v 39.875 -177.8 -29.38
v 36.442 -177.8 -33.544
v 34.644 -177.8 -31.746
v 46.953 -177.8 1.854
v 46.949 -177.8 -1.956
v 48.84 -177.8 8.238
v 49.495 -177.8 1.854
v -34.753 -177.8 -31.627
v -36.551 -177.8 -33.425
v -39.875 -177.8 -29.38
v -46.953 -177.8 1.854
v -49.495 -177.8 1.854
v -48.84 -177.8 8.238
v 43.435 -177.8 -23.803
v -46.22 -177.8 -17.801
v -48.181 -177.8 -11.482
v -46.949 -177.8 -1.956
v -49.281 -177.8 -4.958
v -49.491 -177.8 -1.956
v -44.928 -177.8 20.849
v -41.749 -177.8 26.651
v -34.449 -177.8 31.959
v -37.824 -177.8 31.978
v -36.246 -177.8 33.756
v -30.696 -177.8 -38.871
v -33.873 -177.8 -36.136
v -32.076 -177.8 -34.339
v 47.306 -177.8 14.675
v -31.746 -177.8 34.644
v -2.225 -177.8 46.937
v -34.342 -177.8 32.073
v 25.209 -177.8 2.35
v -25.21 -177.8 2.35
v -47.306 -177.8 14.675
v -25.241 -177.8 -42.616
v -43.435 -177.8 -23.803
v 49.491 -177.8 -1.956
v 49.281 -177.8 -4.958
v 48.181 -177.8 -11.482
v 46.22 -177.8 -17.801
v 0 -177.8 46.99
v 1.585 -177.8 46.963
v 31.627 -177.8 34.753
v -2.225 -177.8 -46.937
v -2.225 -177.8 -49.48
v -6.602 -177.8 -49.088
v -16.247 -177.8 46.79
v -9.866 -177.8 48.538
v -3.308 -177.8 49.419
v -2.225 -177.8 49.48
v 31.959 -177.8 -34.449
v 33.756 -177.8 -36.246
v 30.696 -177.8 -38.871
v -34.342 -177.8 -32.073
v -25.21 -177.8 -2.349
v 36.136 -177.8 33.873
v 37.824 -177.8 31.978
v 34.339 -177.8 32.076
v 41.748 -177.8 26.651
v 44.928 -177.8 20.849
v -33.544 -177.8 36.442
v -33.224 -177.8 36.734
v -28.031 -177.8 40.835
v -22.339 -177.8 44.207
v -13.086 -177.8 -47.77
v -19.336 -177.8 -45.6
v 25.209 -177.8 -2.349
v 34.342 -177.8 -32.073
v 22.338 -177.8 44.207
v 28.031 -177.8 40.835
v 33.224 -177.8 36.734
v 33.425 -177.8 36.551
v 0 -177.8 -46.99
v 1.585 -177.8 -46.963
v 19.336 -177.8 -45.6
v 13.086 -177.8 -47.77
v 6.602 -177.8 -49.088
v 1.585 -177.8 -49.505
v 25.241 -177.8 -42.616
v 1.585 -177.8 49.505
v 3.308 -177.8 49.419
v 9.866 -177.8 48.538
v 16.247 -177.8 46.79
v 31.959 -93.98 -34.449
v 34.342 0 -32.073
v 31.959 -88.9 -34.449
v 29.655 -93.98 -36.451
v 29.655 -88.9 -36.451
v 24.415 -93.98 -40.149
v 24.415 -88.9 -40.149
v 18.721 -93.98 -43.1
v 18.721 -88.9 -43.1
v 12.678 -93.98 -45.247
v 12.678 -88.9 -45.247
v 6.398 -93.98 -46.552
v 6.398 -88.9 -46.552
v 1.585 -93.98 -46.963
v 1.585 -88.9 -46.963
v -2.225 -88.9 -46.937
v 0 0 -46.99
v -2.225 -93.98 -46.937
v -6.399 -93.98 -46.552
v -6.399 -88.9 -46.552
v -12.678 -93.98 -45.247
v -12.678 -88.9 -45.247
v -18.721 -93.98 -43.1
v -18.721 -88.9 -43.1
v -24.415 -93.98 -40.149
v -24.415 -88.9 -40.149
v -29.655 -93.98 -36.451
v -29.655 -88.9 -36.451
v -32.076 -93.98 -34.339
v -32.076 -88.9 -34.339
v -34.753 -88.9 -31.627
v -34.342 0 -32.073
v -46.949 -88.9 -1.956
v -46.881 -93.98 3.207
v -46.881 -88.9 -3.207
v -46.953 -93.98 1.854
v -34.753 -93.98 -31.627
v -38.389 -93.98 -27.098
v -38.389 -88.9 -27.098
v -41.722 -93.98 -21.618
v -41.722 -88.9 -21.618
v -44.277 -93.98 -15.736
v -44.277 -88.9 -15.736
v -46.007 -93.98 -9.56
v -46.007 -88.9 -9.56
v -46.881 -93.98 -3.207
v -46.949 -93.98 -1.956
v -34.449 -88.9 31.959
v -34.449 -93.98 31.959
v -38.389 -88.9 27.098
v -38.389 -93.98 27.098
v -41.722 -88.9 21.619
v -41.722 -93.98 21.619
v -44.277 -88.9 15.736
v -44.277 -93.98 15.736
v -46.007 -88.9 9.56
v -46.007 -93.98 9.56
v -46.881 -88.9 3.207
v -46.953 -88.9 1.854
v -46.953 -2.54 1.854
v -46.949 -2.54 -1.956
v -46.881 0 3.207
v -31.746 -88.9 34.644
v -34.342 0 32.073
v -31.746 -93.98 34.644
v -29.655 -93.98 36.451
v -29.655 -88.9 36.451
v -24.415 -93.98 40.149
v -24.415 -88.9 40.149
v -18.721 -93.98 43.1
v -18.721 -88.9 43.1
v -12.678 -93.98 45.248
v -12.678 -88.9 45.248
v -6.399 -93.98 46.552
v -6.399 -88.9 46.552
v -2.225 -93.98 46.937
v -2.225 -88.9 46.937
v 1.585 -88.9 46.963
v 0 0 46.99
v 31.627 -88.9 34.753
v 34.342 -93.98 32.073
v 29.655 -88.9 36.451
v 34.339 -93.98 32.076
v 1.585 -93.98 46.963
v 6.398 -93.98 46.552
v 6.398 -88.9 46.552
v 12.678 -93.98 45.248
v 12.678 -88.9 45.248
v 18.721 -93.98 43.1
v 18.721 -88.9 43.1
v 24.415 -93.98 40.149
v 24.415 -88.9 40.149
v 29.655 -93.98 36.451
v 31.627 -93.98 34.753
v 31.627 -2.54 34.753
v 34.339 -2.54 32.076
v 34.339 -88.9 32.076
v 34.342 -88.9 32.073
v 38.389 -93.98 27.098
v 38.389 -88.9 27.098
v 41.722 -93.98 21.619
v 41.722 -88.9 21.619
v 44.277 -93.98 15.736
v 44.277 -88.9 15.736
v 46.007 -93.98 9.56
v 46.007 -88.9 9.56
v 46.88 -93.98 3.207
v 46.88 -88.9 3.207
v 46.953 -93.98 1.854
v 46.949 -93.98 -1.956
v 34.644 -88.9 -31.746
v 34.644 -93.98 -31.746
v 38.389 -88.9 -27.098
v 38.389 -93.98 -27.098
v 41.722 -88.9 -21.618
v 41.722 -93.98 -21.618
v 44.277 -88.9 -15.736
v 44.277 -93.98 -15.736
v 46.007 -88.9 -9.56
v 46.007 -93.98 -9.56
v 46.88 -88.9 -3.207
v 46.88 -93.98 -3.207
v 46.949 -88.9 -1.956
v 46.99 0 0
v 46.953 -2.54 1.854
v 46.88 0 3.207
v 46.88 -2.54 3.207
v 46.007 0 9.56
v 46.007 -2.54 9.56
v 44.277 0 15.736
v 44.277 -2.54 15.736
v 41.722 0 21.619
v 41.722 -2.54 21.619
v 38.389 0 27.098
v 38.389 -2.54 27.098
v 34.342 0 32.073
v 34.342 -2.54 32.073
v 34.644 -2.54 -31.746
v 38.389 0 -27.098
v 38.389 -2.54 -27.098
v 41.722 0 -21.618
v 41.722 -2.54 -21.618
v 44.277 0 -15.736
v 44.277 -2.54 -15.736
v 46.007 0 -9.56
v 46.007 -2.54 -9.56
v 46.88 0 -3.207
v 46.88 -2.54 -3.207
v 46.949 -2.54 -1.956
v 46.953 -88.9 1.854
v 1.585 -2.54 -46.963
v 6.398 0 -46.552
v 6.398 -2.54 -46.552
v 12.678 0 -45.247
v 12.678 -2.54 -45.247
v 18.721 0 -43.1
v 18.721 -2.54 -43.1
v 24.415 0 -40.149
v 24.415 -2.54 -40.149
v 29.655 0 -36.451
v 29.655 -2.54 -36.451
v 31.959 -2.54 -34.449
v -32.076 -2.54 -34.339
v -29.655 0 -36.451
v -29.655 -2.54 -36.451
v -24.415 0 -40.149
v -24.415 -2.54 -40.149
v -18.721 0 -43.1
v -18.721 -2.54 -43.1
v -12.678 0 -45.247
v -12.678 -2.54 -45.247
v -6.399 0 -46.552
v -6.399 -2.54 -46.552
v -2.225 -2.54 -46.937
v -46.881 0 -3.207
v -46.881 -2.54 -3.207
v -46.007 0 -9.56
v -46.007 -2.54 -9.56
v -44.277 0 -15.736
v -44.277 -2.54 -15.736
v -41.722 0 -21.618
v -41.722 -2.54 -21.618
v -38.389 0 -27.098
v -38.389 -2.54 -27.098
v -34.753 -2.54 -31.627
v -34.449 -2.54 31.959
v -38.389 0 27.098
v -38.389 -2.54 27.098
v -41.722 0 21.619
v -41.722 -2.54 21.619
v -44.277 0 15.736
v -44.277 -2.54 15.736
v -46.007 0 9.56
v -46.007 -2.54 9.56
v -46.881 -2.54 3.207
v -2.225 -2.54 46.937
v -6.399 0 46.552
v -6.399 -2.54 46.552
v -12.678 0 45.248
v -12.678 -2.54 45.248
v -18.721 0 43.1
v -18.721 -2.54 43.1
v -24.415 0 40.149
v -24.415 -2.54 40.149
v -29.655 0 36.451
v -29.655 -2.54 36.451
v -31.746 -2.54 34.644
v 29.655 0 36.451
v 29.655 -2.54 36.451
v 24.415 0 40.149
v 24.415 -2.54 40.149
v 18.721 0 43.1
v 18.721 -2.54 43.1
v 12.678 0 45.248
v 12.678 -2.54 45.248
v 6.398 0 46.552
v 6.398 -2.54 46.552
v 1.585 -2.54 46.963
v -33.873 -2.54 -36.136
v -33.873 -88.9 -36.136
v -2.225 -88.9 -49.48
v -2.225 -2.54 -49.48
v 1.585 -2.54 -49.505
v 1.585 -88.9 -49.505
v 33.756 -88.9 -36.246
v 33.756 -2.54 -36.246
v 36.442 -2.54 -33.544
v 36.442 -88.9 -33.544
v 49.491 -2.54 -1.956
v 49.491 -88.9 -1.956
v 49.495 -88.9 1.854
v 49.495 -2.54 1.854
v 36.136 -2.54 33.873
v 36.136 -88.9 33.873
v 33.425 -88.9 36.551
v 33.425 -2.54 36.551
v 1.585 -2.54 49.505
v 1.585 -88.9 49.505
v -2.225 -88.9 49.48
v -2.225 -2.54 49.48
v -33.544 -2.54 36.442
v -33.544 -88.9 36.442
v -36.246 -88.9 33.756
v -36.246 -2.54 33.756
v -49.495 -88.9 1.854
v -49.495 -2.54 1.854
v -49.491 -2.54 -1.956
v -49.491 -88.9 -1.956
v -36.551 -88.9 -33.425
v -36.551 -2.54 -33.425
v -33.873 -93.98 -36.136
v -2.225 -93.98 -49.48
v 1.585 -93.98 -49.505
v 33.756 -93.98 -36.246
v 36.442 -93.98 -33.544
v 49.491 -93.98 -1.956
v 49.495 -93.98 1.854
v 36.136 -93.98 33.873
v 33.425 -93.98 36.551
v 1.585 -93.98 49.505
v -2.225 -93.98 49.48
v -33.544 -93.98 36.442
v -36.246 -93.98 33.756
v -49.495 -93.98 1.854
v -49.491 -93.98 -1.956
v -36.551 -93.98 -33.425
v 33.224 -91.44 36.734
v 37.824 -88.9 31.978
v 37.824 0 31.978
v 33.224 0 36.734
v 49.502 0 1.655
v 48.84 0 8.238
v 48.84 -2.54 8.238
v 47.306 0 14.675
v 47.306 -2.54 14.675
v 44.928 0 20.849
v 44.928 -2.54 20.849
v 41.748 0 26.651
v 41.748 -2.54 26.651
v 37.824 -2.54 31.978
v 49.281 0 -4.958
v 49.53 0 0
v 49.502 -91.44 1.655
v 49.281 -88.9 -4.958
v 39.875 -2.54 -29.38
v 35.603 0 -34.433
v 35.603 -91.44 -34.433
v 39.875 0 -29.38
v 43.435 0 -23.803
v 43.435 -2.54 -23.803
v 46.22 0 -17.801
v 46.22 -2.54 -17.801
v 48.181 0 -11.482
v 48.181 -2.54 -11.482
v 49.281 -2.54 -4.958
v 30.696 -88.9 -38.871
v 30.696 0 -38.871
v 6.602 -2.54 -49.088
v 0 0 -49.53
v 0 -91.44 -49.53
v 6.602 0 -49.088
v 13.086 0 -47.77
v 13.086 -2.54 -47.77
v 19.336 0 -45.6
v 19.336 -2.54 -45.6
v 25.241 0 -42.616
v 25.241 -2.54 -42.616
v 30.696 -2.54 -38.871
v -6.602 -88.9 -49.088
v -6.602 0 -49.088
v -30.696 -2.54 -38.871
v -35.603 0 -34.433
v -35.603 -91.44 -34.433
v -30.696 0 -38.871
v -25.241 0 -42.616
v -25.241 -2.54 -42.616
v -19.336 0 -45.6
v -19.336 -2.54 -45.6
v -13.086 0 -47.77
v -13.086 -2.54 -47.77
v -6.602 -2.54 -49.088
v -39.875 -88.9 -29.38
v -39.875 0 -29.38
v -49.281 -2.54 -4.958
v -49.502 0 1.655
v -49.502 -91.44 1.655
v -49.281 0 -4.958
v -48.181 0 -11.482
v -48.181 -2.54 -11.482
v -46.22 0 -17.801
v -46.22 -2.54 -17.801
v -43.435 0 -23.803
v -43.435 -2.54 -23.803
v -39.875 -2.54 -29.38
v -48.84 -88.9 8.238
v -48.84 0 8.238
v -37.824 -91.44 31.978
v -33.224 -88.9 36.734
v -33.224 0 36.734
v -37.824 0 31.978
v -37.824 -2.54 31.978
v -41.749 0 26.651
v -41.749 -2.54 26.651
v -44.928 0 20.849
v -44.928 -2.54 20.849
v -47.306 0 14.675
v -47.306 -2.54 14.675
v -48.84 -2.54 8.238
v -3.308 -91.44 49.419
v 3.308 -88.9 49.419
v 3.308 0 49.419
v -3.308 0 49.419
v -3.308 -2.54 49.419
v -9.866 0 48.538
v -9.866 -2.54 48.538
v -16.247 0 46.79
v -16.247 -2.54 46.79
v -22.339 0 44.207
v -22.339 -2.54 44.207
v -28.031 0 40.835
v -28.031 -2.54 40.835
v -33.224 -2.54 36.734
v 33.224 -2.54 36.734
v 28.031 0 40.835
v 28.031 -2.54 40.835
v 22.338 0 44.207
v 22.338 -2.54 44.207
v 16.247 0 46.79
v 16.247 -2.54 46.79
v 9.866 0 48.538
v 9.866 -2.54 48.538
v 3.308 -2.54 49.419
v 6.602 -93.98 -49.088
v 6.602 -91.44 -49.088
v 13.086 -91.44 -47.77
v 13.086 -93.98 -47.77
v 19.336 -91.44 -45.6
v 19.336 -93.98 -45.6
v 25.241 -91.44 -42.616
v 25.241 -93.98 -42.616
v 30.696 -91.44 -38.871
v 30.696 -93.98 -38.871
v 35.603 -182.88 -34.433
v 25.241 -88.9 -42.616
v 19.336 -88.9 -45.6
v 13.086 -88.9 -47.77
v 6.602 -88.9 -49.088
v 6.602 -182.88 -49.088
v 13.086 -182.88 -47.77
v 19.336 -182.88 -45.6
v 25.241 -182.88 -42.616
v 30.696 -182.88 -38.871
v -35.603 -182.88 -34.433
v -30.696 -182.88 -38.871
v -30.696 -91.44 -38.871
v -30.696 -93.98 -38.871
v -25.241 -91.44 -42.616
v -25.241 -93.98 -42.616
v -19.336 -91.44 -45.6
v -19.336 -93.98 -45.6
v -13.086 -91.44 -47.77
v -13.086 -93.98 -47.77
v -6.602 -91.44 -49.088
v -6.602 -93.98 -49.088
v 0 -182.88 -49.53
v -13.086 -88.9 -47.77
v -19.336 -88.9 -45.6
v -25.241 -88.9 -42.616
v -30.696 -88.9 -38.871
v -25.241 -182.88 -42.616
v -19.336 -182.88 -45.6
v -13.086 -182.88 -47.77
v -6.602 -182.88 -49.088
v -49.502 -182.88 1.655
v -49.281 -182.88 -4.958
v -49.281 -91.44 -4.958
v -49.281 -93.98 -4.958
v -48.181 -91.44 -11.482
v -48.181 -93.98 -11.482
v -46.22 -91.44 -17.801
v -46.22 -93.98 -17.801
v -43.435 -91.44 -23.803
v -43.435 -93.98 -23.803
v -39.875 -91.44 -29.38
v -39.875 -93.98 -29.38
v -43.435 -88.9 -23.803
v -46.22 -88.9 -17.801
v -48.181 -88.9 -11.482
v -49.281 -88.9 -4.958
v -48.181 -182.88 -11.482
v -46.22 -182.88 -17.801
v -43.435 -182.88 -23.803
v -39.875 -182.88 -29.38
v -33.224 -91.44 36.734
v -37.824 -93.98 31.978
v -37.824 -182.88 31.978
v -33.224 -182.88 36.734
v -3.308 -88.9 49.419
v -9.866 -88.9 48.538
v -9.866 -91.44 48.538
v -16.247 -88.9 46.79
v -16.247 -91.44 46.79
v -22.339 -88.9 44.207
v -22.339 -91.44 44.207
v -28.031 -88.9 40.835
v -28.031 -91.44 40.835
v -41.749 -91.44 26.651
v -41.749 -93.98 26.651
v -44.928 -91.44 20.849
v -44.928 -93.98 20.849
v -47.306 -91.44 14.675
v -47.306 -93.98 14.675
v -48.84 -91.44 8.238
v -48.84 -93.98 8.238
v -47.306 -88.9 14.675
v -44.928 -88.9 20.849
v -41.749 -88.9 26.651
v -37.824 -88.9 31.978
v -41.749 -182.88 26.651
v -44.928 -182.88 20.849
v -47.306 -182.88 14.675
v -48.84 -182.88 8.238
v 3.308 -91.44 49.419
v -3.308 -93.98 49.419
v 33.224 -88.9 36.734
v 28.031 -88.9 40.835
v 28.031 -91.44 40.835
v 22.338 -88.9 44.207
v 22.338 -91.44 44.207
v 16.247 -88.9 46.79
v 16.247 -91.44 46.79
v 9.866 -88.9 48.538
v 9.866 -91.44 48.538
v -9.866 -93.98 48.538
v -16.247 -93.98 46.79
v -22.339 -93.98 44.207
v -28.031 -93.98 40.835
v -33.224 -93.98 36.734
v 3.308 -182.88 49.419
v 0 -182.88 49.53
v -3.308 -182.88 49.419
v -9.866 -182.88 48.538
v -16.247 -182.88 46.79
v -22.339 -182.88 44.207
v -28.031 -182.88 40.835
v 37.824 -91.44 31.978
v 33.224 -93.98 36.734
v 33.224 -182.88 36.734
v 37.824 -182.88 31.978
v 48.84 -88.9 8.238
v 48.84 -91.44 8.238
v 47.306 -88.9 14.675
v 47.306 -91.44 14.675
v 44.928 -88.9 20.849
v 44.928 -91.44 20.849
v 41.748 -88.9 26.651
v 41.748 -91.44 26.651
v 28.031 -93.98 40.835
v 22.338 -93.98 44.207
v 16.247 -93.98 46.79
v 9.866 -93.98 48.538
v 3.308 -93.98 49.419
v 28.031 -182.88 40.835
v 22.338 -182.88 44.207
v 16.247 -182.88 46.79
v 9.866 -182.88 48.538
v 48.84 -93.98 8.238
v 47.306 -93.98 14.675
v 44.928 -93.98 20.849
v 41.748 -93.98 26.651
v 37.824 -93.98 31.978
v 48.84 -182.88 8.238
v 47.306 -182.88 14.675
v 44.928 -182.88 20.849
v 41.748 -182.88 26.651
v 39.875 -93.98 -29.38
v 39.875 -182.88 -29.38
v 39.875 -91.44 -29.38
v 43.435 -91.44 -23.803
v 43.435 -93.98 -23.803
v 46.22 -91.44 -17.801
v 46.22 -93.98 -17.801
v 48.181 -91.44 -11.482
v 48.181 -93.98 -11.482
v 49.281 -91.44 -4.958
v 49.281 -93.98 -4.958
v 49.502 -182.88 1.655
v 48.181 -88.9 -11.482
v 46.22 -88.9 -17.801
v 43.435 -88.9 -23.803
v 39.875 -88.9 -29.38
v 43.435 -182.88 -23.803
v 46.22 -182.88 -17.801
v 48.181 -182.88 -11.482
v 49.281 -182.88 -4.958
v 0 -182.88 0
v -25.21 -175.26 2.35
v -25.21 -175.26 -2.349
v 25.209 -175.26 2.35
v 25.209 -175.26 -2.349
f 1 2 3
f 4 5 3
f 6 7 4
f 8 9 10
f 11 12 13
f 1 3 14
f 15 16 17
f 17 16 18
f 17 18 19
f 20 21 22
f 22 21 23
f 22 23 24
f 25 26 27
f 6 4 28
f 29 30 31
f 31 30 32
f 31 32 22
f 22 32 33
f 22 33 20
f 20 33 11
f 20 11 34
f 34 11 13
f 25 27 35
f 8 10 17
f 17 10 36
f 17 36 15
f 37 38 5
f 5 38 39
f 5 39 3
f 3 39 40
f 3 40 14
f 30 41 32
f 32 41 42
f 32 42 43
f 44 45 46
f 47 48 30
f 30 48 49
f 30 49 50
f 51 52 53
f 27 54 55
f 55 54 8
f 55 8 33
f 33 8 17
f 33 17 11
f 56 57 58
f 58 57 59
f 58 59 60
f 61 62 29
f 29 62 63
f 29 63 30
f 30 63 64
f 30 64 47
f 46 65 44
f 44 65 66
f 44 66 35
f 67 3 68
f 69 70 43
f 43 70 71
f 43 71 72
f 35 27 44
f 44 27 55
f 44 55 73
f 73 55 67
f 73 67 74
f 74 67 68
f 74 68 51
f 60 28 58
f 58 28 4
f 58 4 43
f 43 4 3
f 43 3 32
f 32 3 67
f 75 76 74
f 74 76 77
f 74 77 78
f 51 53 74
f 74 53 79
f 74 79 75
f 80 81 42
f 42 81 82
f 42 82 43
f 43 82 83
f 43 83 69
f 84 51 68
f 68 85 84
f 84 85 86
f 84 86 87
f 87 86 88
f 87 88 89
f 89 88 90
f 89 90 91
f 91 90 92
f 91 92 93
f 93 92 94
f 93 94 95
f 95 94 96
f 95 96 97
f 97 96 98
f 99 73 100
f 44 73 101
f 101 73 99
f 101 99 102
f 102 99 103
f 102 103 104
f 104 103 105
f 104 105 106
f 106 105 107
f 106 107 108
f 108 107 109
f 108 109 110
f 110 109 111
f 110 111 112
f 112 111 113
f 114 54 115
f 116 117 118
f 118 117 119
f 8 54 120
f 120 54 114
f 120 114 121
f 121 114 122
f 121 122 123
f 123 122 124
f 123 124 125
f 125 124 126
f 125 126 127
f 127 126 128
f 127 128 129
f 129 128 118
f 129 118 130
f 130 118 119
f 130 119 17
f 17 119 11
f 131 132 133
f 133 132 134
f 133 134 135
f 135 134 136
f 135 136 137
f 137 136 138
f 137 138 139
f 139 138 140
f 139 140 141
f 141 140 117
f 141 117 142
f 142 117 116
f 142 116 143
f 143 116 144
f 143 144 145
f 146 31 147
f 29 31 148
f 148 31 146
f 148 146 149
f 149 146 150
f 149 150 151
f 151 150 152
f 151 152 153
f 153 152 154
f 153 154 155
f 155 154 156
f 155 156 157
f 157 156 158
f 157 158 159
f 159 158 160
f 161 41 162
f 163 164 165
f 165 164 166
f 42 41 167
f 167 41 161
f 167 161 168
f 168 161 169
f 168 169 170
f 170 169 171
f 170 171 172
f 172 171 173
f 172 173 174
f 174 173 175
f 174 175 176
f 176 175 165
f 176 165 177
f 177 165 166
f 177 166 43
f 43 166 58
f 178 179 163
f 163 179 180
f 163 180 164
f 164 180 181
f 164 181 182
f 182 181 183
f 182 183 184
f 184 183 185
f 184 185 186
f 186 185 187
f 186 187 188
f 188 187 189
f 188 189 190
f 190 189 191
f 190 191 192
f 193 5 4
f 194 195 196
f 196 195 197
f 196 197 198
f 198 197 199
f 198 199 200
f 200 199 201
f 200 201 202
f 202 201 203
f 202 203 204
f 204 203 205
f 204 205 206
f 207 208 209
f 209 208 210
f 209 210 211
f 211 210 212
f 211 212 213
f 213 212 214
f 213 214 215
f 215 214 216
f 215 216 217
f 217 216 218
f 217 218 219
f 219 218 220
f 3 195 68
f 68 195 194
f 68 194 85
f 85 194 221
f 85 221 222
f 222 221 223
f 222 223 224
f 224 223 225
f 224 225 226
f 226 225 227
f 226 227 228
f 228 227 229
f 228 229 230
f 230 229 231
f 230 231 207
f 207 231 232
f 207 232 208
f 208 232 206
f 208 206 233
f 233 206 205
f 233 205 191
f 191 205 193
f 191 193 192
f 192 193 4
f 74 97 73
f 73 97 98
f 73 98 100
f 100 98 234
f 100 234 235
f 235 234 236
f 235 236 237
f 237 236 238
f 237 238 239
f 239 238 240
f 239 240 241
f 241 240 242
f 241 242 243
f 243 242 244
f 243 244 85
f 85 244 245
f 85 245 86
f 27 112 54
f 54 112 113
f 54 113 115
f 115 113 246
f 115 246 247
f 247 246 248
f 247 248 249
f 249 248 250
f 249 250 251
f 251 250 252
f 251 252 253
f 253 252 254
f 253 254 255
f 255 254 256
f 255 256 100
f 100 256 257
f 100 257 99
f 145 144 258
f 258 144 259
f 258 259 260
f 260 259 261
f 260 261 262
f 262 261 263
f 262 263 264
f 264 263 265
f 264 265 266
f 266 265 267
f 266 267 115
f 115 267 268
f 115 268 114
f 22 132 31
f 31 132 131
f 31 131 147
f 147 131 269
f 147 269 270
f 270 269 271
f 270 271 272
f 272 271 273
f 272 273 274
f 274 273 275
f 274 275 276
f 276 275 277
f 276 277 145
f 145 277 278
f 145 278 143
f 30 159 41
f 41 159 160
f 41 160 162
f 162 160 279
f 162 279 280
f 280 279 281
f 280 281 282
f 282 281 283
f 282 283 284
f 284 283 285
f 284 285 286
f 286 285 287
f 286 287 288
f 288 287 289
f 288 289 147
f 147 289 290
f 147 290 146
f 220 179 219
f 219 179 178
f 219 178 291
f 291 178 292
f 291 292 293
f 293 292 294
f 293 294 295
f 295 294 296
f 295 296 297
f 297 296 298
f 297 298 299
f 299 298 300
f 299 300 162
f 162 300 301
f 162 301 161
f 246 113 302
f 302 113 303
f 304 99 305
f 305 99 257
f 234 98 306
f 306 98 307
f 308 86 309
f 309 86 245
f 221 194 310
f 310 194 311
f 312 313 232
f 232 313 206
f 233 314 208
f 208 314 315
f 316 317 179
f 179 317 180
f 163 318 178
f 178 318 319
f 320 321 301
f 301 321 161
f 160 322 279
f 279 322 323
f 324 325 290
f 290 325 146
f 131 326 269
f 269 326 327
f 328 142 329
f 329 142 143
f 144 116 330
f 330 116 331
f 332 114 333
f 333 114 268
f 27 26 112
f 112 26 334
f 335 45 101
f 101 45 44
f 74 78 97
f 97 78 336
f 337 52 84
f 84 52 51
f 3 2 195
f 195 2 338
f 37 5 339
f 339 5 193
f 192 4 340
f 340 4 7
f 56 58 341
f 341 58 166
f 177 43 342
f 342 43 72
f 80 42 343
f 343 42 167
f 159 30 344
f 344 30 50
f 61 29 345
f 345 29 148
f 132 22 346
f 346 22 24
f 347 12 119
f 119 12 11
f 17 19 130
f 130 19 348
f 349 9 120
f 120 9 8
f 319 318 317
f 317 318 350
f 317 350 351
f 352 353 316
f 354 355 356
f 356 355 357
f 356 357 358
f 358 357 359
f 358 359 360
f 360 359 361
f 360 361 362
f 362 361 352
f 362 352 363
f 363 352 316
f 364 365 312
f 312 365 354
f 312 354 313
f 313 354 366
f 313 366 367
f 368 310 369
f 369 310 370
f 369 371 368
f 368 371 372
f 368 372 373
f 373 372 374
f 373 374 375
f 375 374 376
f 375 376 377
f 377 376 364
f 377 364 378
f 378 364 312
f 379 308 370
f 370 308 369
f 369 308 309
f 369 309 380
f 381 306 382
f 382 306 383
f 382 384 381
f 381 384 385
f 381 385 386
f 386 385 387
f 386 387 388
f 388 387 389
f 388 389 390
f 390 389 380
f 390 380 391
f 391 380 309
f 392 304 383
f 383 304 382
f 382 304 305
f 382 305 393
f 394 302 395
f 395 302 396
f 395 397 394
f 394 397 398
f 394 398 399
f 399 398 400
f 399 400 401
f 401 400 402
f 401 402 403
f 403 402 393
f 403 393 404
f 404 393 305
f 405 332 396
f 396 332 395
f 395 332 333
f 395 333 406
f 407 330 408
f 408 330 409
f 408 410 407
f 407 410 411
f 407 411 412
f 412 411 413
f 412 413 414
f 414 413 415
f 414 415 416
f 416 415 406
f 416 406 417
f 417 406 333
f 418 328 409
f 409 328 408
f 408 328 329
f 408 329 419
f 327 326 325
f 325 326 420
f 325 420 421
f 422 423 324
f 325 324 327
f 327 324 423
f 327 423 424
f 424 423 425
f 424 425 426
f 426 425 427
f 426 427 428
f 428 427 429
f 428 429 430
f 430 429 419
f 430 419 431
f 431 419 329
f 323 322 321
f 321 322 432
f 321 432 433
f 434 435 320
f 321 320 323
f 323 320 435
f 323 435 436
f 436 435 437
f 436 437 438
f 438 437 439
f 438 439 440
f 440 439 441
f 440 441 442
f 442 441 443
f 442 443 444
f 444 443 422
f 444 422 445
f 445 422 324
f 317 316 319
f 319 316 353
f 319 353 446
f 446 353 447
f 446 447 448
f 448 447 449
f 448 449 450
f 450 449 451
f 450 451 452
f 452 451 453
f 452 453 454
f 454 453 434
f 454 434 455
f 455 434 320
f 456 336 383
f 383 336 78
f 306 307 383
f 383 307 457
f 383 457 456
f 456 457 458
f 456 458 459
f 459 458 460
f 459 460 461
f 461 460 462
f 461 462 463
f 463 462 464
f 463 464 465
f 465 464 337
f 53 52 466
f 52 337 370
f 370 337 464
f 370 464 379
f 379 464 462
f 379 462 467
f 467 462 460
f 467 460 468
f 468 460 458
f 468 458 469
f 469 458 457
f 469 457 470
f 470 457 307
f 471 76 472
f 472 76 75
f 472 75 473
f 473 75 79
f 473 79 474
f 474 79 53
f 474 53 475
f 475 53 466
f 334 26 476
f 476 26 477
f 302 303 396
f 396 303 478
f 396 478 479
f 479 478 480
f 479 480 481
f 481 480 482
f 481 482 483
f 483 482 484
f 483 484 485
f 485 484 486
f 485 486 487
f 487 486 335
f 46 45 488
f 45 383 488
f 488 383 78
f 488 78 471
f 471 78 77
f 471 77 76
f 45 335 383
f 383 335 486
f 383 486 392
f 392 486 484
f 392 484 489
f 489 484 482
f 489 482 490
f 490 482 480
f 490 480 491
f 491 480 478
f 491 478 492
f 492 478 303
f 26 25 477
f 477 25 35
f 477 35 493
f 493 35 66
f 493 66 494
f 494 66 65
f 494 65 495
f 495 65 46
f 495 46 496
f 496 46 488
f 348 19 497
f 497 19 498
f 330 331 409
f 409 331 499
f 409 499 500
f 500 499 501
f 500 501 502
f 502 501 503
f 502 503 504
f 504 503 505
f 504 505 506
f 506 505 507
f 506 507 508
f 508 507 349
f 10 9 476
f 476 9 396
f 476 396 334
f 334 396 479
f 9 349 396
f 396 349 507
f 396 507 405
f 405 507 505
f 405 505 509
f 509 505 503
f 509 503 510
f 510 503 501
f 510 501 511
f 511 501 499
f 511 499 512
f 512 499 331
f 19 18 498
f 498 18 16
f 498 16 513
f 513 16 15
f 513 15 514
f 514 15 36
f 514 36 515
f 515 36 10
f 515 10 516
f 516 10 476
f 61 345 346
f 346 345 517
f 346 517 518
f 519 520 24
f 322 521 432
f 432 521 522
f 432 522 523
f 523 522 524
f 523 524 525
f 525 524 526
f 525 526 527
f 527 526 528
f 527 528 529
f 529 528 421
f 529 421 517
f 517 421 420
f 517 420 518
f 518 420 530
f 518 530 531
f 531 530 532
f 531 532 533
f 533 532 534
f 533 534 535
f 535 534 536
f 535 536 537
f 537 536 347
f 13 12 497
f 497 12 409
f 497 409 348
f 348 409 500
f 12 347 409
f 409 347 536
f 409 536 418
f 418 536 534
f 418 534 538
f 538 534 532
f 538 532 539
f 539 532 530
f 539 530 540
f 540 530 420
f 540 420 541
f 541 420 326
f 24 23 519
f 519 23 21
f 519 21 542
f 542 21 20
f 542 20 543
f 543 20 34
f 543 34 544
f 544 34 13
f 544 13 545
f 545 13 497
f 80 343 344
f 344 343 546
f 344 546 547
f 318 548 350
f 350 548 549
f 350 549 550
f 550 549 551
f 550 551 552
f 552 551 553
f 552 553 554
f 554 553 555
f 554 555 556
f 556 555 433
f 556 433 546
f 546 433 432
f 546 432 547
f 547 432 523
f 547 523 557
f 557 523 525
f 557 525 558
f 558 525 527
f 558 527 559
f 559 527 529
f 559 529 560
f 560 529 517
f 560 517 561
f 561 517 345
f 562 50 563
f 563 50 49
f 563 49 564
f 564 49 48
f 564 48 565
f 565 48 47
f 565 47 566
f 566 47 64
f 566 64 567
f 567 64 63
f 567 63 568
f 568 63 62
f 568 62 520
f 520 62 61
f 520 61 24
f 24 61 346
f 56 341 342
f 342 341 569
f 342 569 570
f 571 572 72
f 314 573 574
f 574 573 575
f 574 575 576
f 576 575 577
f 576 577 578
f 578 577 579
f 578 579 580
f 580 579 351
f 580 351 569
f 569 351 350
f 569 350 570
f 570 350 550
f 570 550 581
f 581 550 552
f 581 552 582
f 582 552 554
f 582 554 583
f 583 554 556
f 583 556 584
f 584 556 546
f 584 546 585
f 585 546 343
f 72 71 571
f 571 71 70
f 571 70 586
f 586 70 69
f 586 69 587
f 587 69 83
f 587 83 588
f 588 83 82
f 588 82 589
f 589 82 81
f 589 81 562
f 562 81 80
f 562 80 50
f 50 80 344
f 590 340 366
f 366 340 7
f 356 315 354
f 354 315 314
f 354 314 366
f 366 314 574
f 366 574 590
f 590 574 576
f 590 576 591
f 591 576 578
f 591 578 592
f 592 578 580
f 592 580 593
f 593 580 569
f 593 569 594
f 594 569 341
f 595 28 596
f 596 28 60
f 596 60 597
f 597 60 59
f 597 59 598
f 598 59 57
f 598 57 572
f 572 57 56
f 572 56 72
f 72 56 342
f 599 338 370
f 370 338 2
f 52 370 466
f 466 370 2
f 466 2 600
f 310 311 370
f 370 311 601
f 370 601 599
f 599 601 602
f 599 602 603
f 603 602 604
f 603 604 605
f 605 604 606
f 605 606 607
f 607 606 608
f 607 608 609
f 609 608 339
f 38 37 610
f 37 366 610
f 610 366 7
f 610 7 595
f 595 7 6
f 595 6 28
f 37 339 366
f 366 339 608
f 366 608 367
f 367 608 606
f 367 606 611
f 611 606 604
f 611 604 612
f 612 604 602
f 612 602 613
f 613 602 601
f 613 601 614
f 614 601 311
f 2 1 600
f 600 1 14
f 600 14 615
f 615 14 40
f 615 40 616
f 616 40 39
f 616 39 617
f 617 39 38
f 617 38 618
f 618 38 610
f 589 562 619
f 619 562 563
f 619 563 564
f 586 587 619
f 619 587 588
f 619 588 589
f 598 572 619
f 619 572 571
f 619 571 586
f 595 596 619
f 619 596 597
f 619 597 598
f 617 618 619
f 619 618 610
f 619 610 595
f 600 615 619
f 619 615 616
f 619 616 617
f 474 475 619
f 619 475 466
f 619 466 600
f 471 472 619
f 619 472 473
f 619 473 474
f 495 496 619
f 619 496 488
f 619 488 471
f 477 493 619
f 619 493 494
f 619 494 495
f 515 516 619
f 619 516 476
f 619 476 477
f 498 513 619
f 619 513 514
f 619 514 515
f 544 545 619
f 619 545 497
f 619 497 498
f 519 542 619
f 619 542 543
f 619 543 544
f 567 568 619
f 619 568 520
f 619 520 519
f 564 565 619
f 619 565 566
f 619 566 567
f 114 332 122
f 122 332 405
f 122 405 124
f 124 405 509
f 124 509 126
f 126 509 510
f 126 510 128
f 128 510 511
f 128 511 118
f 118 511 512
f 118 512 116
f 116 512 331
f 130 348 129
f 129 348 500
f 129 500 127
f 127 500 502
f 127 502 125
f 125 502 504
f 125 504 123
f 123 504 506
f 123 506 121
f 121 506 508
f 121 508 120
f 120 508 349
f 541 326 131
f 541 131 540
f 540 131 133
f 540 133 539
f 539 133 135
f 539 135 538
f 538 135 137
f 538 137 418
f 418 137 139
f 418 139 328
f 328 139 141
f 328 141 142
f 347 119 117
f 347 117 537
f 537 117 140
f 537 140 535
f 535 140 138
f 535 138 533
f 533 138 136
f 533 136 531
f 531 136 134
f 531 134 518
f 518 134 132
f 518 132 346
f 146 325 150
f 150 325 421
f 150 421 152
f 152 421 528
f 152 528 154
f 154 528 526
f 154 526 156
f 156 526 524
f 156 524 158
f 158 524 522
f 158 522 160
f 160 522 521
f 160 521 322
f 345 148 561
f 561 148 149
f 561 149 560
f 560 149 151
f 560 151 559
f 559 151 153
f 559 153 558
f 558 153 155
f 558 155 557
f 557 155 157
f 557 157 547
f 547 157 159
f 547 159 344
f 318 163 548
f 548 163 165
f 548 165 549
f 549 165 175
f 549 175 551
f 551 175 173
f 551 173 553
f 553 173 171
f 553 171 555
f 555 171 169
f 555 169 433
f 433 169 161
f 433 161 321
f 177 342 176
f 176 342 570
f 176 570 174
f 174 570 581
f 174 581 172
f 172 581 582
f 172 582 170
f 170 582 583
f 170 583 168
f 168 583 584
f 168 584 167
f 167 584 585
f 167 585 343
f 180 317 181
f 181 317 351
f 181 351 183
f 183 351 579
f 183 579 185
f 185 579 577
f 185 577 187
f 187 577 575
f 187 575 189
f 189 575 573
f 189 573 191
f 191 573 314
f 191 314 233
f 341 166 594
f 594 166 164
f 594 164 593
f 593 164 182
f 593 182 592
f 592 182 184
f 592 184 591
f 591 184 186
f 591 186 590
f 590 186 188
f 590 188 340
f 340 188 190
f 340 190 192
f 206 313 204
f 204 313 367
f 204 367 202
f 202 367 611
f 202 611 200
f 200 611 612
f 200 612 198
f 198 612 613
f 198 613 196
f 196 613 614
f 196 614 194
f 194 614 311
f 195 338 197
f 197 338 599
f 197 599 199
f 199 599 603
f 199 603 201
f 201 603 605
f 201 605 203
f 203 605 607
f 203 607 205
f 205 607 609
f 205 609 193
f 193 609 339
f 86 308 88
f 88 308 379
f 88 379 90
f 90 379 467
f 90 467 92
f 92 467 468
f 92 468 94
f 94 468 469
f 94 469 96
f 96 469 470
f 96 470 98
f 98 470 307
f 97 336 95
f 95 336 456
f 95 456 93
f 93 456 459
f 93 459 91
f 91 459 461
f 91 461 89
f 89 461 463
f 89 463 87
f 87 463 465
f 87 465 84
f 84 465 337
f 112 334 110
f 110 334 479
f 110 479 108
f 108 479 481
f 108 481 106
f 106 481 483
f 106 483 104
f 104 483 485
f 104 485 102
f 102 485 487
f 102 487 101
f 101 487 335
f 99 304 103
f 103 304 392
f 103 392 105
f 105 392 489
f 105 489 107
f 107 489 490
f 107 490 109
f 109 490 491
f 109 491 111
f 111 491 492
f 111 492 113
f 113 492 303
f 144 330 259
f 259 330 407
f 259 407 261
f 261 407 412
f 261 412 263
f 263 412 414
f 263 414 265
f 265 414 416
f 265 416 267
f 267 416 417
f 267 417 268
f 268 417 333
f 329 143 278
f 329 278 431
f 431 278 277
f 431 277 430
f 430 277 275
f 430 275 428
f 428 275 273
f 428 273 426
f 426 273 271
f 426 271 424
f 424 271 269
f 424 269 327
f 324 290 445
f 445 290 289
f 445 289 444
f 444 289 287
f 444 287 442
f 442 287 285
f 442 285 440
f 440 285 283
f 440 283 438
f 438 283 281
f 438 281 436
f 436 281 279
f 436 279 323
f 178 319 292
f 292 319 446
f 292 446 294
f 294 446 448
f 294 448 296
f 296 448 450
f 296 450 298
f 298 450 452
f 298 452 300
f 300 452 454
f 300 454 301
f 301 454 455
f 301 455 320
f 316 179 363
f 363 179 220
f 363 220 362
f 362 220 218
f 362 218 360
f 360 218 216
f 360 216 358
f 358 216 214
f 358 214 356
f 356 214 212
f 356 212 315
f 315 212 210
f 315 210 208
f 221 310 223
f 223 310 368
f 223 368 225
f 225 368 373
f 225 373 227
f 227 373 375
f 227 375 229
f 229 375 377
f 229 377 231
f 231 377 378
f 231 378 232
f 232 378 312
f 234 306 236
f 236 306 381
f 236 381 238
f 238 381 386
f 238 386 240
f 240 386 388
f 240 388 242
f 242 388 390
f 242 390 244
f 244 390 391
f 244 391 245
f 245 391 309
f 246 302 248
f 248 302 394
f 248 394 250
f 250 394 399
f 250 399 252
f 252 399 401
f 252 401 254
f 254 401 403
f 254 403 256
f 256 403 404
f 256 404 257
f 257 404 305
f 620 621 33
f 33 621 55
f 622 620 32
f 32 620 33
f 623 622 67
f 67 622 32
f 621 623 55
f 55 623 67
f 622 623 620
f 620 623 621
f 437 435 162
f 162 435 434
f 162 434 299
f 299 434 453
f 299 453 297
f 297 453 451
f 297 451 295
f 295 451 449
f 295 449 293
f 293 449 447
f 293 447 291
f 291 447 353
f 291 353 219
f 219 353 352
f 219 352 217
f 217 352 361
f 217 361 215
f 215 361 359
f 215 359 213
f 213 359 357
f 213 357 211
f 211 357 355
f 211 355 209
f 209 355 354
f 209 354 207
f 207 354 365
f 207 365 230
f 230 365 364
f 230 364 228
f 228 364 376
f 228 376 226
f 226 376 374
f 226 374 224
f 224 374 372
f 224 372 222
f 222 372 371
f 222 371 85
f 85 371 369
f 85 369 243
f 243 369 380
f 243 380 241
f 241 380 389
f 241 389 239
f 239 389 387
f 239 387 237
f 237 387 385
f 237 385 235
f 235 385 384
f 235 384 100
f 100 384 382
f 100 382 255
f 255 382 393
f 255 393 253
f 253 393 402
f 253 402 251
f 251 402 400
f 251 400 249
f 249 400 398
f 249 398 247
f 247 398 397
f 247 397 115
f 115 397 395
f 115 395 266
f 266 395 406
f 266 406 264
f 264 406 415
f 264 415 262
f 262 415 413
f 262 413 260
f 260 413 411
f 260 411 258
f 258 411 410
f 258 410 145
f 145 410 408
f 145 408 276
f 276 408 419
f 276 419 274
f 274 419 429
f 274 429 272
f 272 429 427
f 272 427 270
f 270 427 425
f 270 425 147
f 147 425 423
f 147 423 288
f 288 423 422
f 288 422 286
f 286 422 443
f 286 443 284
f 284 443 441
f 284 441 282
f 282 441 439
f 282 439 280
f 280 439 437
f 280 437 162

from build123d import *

# Parameters (mm, degrees)
SKETCH1_R               = 49.53
SKETCH1_R_2             = 46.99
BOSS_EXTRUDE1_DEPTH     = 182.88
CUT_EXTRUDE1_DEPTH      = 177.8
SKETCH3_R               = 49.53
SKETCH3_R_2             = 46.99
BOSS_EXTRUDE2_DEPTH     = 2.54
SKETCH4_R               = 49.53
SKETCH4_R_2             = 46.99
BOSS_EXTRUDE3_DEPTH     = 2.54
BOSS_EXTRUDE4_START     = -5.08
SKETCH5_R               = 49.53
BOSS_EXTRUDE4_DEPTH     = 5.08
SKETCH6_W               = 50.419
SKETCH6_H               = 4.699
BOSS_EXTRUDE5_DEPTH     = 2.54
SKETCH7_R               = 0.8255
BOSS_EXTRUDE6_DEPTH     = 2.54
CIRPATTERN2_COUNT       = 8
CUT_EXTRUDE2_DEPTH      = 199.209531052
CUT_EXTRUDE2_DEPTH_BACK = 199.209531052
SKETCH8_W               = 111.115562831
SKETCH8_H               = 193.581618433


with BuildPart() as part:
    # Sketch1 → Boss-Extrude1 (new, symmetric)
    with BuildSketch(Plane(origin=(0, 0, 0), x_dir=(1, 0, 0), z_dir=(0, 1, 0))):
        with Locations(Location((0, 0, 0), (0, 0, 270))):
            Circle(SKETCH1_R)
        with Locations(Location((0, 0, 0), (0, 0, 270))):
            Circle(SKETCH1_R_2, mode=Mode.SUBTRACT)
    extrude(amount=BOSS_EXTRUDE1_DEPTH, both=True)

    # Sketch2 → Cut-Extrude1 (cut, symmetric)
    with BuildSketch(Plane(origin=(0, 0, 0), x_dir=(1, 0, 0), z_dir=(0, 1, 0))):
        with BuildLine():
            Line((34.339077963, -32.07628134), (36.13611782, -33.873321197))
            ThreePointArc((36.13611782, -33.873321197), (45.710930003, -19.071753413), (49.49527883, -1.854258207))
            Line((49.49527883, -1.854258207), (46.953400585, -1.854258207))
            ThreePointArc((46.953400585, -1.854258207), (43.364264524, -18.099742051), (34.339077963, -32.07628134))
        make_face()
        with BuildLine():
            ThreePointArc((1.584890151, -49.504636381), (18.664975227, -45.878530924), (33.425440685, -36.550797734))
            Line((33.425440685, -36.550797734), (31.627502039, -34.752859088))
            ThreePointArc((31.627502039, -34.752859088), (17.692915235, -43.531837205), (1.584890151, -46.963264614))
            Line((1.584890151, -46.963264614), (1.584890151, -49.504636381))
        make_face()
        with BuildLine():
            ThreePointArc((-33.543952964, -36.442065248), (-19.03558139, -45.726005086), (-2.225109849, -49.479993797))
            Line((-2.225109849, -49.479993797), (-2.225109849, -46.937287801))
            ThreePointArc((-2.225109849, -46.937287801), (-18.063572268, -43.379343666), (-31.746279167, -34.644391451))
            Line((-31.746279167, -34.644391451), (-33.543952964, -36.442065248))
        make_face()
        with BuildLine():
            Line((46.949282998, 1.955741793), (49.491372723, 1.955741793))
            ThreePointArc((49.491372723, 1.955741793), (45.777644234, 18.911059948), (36.442065248, 33.543952964))
            Line((36.442065248, 33.543952964), (34.644391451, 31.746279167))
            ThreePointArc((34.644391451, 31.746279167), (43.430990742, 17.93903964), (46.949282998, 1.955741793))
        make_face()
        with BuildLine():
            ThreePointArc((-49.49527883, -1.854258207), (-45.741824116, -18.997537381), (-36.245883162, -33.755841773))
            Line((-36.245883162, -33.755841773), (-34.448634556, -31.958593167))
            ThreePointArc((-34.448634556, -31.958593167), (-43.39516767, -18.025524205), (-46.953400585, -1.854258207))
            Line((-46.953400585, -1.854258207), (-49.49527883, -1.854258207))
        make_face()
        with BuildLine():
            Line((31.958593167, 34.448634556), (33.755841773, 36.245883162))
            ThreePointArc((33.755841773, 36.245883162), (18.873008967, 45.79334485), (1.584890151, 49.504636381))
            Line((1.584890151, 49.504636381), (1.584890151, 46.963264614))
            ThreePointArc((1.584890151, 46.963264614), (17.900986276, 43.446689061), (31.958593167, 34.448634556))
        make_face()
        with BuildLine():
            ThreePointArc((-36.550797734, 33.425440685), (-45.80828813, 18.836709868), (-49.491372723, 1.955741793))
            Line((-49.491372723, 1.955741793), (-46.949282998, 1.955741793))
            ThreePointArc((-46.949282998, 1.955741793), (-43.461630715, 17.864678995), (-34.752859088, 31.627502039))
            Line((-34.752859088, 31.627502039), (-36.550797734, 33.425440685))
        make_face()
        with BuildLine():
            Line((-2.225109849, 46.937287801), (-2.225109849, 49.479993797))
            ThreePointArc((-2.225109849, 49.479993797), (-19.242893169, 45.63914945), (-33.873321197, 36.13611782))
            Line((-33.873321197, 36.13611782), (-32.07628134, 34.339077963))
            ThreePointArc((-32.07628134, 34.339077963), (-18.270880717, 43.292436035), (-2.225109849, 46.937287801))
        make_face()
    extrude(amount=CUT_EXTRUDE1_DEPTH, both=True, mode=Mode.SUBTRACT)

    # Sketch3 → Boss-Extrude2 (add, symmetric)
    with BuildSketch(Plane(origin=(0, 91.44, 0), x_dir=(1, 0, 0), z_dir=(0, 1, 0))):
        with Locations(Location((0, 0, 0), (0, 0, 270))):
            Circle(SKETCH3_R)
        with Locations(Location((0, 0, 0), (0, 0, 270))):
            Circle(SKETCH3_R_2, mode=Mode.SUBTRACT)
    boss_extrude2 = extrude(amount=BOSS_EXTRUDE2_DEPTH, both=True)

    # Mirror1: Boss-Extrude2 across plane
    add(boss_extrude2.mirror(Plane.ZX))

    # Sketch4 → Boss-Extrude3 (add, symmetric)
    with BuildSketch(Plane(origin=(0, 0, 0), x_dir=(1, 0, 0), z_dir=(0, 1, 0))):
        with Locations(Location((0, 0, 0), (0, 0, 270))):
            Circle(SKETCH4_R)
        with Locations(Location((0, 0, 0), (0, 0, 270))):
            Circle(SKETCH4_R_2, mode=Mode.SUBTRACT)
    extrude(amount=BOSS_EXTRUDE3_DEPTH, both=True)

    # Sketch5 → Boss-Extrude4 (add)
    with BuildSketch(Plane.XZ.offset(182.88).offset(BOSS_EXTRUDE4_START)):
        with Locations(Location((0, 0, 0), (0, 0, 90))):
            Circle(SKETCH5_R)
    extrude(amount=BOSS_EXTRUDE4_DEPTH)

    # Sketch6 → Boss-Extrude5 (add)
    with BuildSketch(Plane(origin=(0, -177.8, 0), x_dir=(1, 0, 0), z_dir=(0, 1, 0))):
        Rectangle(SKETCH6_W, SKETCH6_H)
    extrude(amount=BOSS_EXTRUDE5_DEPTH)

    # Sketch7 → Boss-Extrude6 (add)
    with BuildSketch(Plane(origin=(0, 182.88, 0), x_dir=(1, 0, 0), z_dir=(0, 1, 0))):
        with Locations(Location((48.26, 0, 0), (0, 0, 270))):
            Circle(SKETCH7_R)
    boss_extrude6 = extrude(amount=BOSS_EXTRUDE6_DEPTH)

    # CirPattern2: Boss-Extrude6 ×8 about axis
    cirpattern2_axis = Axis((0, 0, 0), (0, 1, 0))
    for i in range(1, CIRPATTERN2_COUNT):
        add(boss_extrude6.rotate(cirpattern2_axis, i * 360 / CIRPATTERN2_COUNT))

    # Sketch8 → Cut-Extrude2 (cut, two sides: drawn at the far end of the back side and taken through both)
    with BuildSketch(Plane.XY.offset(-CUT_EXTRUDE2_DEPTH_BACK)):
        with Locations((1.84635432, 96.790809217)):
            Rectangle(SKETCH8_W, SKETCH8_H)
    extrude(amount=CUT_EXTRUDE2_DEPTH + CUT_EXTRUDE2_DEPTH_BACK, mode=Mode.SUBTRACT)


solid = part.part
